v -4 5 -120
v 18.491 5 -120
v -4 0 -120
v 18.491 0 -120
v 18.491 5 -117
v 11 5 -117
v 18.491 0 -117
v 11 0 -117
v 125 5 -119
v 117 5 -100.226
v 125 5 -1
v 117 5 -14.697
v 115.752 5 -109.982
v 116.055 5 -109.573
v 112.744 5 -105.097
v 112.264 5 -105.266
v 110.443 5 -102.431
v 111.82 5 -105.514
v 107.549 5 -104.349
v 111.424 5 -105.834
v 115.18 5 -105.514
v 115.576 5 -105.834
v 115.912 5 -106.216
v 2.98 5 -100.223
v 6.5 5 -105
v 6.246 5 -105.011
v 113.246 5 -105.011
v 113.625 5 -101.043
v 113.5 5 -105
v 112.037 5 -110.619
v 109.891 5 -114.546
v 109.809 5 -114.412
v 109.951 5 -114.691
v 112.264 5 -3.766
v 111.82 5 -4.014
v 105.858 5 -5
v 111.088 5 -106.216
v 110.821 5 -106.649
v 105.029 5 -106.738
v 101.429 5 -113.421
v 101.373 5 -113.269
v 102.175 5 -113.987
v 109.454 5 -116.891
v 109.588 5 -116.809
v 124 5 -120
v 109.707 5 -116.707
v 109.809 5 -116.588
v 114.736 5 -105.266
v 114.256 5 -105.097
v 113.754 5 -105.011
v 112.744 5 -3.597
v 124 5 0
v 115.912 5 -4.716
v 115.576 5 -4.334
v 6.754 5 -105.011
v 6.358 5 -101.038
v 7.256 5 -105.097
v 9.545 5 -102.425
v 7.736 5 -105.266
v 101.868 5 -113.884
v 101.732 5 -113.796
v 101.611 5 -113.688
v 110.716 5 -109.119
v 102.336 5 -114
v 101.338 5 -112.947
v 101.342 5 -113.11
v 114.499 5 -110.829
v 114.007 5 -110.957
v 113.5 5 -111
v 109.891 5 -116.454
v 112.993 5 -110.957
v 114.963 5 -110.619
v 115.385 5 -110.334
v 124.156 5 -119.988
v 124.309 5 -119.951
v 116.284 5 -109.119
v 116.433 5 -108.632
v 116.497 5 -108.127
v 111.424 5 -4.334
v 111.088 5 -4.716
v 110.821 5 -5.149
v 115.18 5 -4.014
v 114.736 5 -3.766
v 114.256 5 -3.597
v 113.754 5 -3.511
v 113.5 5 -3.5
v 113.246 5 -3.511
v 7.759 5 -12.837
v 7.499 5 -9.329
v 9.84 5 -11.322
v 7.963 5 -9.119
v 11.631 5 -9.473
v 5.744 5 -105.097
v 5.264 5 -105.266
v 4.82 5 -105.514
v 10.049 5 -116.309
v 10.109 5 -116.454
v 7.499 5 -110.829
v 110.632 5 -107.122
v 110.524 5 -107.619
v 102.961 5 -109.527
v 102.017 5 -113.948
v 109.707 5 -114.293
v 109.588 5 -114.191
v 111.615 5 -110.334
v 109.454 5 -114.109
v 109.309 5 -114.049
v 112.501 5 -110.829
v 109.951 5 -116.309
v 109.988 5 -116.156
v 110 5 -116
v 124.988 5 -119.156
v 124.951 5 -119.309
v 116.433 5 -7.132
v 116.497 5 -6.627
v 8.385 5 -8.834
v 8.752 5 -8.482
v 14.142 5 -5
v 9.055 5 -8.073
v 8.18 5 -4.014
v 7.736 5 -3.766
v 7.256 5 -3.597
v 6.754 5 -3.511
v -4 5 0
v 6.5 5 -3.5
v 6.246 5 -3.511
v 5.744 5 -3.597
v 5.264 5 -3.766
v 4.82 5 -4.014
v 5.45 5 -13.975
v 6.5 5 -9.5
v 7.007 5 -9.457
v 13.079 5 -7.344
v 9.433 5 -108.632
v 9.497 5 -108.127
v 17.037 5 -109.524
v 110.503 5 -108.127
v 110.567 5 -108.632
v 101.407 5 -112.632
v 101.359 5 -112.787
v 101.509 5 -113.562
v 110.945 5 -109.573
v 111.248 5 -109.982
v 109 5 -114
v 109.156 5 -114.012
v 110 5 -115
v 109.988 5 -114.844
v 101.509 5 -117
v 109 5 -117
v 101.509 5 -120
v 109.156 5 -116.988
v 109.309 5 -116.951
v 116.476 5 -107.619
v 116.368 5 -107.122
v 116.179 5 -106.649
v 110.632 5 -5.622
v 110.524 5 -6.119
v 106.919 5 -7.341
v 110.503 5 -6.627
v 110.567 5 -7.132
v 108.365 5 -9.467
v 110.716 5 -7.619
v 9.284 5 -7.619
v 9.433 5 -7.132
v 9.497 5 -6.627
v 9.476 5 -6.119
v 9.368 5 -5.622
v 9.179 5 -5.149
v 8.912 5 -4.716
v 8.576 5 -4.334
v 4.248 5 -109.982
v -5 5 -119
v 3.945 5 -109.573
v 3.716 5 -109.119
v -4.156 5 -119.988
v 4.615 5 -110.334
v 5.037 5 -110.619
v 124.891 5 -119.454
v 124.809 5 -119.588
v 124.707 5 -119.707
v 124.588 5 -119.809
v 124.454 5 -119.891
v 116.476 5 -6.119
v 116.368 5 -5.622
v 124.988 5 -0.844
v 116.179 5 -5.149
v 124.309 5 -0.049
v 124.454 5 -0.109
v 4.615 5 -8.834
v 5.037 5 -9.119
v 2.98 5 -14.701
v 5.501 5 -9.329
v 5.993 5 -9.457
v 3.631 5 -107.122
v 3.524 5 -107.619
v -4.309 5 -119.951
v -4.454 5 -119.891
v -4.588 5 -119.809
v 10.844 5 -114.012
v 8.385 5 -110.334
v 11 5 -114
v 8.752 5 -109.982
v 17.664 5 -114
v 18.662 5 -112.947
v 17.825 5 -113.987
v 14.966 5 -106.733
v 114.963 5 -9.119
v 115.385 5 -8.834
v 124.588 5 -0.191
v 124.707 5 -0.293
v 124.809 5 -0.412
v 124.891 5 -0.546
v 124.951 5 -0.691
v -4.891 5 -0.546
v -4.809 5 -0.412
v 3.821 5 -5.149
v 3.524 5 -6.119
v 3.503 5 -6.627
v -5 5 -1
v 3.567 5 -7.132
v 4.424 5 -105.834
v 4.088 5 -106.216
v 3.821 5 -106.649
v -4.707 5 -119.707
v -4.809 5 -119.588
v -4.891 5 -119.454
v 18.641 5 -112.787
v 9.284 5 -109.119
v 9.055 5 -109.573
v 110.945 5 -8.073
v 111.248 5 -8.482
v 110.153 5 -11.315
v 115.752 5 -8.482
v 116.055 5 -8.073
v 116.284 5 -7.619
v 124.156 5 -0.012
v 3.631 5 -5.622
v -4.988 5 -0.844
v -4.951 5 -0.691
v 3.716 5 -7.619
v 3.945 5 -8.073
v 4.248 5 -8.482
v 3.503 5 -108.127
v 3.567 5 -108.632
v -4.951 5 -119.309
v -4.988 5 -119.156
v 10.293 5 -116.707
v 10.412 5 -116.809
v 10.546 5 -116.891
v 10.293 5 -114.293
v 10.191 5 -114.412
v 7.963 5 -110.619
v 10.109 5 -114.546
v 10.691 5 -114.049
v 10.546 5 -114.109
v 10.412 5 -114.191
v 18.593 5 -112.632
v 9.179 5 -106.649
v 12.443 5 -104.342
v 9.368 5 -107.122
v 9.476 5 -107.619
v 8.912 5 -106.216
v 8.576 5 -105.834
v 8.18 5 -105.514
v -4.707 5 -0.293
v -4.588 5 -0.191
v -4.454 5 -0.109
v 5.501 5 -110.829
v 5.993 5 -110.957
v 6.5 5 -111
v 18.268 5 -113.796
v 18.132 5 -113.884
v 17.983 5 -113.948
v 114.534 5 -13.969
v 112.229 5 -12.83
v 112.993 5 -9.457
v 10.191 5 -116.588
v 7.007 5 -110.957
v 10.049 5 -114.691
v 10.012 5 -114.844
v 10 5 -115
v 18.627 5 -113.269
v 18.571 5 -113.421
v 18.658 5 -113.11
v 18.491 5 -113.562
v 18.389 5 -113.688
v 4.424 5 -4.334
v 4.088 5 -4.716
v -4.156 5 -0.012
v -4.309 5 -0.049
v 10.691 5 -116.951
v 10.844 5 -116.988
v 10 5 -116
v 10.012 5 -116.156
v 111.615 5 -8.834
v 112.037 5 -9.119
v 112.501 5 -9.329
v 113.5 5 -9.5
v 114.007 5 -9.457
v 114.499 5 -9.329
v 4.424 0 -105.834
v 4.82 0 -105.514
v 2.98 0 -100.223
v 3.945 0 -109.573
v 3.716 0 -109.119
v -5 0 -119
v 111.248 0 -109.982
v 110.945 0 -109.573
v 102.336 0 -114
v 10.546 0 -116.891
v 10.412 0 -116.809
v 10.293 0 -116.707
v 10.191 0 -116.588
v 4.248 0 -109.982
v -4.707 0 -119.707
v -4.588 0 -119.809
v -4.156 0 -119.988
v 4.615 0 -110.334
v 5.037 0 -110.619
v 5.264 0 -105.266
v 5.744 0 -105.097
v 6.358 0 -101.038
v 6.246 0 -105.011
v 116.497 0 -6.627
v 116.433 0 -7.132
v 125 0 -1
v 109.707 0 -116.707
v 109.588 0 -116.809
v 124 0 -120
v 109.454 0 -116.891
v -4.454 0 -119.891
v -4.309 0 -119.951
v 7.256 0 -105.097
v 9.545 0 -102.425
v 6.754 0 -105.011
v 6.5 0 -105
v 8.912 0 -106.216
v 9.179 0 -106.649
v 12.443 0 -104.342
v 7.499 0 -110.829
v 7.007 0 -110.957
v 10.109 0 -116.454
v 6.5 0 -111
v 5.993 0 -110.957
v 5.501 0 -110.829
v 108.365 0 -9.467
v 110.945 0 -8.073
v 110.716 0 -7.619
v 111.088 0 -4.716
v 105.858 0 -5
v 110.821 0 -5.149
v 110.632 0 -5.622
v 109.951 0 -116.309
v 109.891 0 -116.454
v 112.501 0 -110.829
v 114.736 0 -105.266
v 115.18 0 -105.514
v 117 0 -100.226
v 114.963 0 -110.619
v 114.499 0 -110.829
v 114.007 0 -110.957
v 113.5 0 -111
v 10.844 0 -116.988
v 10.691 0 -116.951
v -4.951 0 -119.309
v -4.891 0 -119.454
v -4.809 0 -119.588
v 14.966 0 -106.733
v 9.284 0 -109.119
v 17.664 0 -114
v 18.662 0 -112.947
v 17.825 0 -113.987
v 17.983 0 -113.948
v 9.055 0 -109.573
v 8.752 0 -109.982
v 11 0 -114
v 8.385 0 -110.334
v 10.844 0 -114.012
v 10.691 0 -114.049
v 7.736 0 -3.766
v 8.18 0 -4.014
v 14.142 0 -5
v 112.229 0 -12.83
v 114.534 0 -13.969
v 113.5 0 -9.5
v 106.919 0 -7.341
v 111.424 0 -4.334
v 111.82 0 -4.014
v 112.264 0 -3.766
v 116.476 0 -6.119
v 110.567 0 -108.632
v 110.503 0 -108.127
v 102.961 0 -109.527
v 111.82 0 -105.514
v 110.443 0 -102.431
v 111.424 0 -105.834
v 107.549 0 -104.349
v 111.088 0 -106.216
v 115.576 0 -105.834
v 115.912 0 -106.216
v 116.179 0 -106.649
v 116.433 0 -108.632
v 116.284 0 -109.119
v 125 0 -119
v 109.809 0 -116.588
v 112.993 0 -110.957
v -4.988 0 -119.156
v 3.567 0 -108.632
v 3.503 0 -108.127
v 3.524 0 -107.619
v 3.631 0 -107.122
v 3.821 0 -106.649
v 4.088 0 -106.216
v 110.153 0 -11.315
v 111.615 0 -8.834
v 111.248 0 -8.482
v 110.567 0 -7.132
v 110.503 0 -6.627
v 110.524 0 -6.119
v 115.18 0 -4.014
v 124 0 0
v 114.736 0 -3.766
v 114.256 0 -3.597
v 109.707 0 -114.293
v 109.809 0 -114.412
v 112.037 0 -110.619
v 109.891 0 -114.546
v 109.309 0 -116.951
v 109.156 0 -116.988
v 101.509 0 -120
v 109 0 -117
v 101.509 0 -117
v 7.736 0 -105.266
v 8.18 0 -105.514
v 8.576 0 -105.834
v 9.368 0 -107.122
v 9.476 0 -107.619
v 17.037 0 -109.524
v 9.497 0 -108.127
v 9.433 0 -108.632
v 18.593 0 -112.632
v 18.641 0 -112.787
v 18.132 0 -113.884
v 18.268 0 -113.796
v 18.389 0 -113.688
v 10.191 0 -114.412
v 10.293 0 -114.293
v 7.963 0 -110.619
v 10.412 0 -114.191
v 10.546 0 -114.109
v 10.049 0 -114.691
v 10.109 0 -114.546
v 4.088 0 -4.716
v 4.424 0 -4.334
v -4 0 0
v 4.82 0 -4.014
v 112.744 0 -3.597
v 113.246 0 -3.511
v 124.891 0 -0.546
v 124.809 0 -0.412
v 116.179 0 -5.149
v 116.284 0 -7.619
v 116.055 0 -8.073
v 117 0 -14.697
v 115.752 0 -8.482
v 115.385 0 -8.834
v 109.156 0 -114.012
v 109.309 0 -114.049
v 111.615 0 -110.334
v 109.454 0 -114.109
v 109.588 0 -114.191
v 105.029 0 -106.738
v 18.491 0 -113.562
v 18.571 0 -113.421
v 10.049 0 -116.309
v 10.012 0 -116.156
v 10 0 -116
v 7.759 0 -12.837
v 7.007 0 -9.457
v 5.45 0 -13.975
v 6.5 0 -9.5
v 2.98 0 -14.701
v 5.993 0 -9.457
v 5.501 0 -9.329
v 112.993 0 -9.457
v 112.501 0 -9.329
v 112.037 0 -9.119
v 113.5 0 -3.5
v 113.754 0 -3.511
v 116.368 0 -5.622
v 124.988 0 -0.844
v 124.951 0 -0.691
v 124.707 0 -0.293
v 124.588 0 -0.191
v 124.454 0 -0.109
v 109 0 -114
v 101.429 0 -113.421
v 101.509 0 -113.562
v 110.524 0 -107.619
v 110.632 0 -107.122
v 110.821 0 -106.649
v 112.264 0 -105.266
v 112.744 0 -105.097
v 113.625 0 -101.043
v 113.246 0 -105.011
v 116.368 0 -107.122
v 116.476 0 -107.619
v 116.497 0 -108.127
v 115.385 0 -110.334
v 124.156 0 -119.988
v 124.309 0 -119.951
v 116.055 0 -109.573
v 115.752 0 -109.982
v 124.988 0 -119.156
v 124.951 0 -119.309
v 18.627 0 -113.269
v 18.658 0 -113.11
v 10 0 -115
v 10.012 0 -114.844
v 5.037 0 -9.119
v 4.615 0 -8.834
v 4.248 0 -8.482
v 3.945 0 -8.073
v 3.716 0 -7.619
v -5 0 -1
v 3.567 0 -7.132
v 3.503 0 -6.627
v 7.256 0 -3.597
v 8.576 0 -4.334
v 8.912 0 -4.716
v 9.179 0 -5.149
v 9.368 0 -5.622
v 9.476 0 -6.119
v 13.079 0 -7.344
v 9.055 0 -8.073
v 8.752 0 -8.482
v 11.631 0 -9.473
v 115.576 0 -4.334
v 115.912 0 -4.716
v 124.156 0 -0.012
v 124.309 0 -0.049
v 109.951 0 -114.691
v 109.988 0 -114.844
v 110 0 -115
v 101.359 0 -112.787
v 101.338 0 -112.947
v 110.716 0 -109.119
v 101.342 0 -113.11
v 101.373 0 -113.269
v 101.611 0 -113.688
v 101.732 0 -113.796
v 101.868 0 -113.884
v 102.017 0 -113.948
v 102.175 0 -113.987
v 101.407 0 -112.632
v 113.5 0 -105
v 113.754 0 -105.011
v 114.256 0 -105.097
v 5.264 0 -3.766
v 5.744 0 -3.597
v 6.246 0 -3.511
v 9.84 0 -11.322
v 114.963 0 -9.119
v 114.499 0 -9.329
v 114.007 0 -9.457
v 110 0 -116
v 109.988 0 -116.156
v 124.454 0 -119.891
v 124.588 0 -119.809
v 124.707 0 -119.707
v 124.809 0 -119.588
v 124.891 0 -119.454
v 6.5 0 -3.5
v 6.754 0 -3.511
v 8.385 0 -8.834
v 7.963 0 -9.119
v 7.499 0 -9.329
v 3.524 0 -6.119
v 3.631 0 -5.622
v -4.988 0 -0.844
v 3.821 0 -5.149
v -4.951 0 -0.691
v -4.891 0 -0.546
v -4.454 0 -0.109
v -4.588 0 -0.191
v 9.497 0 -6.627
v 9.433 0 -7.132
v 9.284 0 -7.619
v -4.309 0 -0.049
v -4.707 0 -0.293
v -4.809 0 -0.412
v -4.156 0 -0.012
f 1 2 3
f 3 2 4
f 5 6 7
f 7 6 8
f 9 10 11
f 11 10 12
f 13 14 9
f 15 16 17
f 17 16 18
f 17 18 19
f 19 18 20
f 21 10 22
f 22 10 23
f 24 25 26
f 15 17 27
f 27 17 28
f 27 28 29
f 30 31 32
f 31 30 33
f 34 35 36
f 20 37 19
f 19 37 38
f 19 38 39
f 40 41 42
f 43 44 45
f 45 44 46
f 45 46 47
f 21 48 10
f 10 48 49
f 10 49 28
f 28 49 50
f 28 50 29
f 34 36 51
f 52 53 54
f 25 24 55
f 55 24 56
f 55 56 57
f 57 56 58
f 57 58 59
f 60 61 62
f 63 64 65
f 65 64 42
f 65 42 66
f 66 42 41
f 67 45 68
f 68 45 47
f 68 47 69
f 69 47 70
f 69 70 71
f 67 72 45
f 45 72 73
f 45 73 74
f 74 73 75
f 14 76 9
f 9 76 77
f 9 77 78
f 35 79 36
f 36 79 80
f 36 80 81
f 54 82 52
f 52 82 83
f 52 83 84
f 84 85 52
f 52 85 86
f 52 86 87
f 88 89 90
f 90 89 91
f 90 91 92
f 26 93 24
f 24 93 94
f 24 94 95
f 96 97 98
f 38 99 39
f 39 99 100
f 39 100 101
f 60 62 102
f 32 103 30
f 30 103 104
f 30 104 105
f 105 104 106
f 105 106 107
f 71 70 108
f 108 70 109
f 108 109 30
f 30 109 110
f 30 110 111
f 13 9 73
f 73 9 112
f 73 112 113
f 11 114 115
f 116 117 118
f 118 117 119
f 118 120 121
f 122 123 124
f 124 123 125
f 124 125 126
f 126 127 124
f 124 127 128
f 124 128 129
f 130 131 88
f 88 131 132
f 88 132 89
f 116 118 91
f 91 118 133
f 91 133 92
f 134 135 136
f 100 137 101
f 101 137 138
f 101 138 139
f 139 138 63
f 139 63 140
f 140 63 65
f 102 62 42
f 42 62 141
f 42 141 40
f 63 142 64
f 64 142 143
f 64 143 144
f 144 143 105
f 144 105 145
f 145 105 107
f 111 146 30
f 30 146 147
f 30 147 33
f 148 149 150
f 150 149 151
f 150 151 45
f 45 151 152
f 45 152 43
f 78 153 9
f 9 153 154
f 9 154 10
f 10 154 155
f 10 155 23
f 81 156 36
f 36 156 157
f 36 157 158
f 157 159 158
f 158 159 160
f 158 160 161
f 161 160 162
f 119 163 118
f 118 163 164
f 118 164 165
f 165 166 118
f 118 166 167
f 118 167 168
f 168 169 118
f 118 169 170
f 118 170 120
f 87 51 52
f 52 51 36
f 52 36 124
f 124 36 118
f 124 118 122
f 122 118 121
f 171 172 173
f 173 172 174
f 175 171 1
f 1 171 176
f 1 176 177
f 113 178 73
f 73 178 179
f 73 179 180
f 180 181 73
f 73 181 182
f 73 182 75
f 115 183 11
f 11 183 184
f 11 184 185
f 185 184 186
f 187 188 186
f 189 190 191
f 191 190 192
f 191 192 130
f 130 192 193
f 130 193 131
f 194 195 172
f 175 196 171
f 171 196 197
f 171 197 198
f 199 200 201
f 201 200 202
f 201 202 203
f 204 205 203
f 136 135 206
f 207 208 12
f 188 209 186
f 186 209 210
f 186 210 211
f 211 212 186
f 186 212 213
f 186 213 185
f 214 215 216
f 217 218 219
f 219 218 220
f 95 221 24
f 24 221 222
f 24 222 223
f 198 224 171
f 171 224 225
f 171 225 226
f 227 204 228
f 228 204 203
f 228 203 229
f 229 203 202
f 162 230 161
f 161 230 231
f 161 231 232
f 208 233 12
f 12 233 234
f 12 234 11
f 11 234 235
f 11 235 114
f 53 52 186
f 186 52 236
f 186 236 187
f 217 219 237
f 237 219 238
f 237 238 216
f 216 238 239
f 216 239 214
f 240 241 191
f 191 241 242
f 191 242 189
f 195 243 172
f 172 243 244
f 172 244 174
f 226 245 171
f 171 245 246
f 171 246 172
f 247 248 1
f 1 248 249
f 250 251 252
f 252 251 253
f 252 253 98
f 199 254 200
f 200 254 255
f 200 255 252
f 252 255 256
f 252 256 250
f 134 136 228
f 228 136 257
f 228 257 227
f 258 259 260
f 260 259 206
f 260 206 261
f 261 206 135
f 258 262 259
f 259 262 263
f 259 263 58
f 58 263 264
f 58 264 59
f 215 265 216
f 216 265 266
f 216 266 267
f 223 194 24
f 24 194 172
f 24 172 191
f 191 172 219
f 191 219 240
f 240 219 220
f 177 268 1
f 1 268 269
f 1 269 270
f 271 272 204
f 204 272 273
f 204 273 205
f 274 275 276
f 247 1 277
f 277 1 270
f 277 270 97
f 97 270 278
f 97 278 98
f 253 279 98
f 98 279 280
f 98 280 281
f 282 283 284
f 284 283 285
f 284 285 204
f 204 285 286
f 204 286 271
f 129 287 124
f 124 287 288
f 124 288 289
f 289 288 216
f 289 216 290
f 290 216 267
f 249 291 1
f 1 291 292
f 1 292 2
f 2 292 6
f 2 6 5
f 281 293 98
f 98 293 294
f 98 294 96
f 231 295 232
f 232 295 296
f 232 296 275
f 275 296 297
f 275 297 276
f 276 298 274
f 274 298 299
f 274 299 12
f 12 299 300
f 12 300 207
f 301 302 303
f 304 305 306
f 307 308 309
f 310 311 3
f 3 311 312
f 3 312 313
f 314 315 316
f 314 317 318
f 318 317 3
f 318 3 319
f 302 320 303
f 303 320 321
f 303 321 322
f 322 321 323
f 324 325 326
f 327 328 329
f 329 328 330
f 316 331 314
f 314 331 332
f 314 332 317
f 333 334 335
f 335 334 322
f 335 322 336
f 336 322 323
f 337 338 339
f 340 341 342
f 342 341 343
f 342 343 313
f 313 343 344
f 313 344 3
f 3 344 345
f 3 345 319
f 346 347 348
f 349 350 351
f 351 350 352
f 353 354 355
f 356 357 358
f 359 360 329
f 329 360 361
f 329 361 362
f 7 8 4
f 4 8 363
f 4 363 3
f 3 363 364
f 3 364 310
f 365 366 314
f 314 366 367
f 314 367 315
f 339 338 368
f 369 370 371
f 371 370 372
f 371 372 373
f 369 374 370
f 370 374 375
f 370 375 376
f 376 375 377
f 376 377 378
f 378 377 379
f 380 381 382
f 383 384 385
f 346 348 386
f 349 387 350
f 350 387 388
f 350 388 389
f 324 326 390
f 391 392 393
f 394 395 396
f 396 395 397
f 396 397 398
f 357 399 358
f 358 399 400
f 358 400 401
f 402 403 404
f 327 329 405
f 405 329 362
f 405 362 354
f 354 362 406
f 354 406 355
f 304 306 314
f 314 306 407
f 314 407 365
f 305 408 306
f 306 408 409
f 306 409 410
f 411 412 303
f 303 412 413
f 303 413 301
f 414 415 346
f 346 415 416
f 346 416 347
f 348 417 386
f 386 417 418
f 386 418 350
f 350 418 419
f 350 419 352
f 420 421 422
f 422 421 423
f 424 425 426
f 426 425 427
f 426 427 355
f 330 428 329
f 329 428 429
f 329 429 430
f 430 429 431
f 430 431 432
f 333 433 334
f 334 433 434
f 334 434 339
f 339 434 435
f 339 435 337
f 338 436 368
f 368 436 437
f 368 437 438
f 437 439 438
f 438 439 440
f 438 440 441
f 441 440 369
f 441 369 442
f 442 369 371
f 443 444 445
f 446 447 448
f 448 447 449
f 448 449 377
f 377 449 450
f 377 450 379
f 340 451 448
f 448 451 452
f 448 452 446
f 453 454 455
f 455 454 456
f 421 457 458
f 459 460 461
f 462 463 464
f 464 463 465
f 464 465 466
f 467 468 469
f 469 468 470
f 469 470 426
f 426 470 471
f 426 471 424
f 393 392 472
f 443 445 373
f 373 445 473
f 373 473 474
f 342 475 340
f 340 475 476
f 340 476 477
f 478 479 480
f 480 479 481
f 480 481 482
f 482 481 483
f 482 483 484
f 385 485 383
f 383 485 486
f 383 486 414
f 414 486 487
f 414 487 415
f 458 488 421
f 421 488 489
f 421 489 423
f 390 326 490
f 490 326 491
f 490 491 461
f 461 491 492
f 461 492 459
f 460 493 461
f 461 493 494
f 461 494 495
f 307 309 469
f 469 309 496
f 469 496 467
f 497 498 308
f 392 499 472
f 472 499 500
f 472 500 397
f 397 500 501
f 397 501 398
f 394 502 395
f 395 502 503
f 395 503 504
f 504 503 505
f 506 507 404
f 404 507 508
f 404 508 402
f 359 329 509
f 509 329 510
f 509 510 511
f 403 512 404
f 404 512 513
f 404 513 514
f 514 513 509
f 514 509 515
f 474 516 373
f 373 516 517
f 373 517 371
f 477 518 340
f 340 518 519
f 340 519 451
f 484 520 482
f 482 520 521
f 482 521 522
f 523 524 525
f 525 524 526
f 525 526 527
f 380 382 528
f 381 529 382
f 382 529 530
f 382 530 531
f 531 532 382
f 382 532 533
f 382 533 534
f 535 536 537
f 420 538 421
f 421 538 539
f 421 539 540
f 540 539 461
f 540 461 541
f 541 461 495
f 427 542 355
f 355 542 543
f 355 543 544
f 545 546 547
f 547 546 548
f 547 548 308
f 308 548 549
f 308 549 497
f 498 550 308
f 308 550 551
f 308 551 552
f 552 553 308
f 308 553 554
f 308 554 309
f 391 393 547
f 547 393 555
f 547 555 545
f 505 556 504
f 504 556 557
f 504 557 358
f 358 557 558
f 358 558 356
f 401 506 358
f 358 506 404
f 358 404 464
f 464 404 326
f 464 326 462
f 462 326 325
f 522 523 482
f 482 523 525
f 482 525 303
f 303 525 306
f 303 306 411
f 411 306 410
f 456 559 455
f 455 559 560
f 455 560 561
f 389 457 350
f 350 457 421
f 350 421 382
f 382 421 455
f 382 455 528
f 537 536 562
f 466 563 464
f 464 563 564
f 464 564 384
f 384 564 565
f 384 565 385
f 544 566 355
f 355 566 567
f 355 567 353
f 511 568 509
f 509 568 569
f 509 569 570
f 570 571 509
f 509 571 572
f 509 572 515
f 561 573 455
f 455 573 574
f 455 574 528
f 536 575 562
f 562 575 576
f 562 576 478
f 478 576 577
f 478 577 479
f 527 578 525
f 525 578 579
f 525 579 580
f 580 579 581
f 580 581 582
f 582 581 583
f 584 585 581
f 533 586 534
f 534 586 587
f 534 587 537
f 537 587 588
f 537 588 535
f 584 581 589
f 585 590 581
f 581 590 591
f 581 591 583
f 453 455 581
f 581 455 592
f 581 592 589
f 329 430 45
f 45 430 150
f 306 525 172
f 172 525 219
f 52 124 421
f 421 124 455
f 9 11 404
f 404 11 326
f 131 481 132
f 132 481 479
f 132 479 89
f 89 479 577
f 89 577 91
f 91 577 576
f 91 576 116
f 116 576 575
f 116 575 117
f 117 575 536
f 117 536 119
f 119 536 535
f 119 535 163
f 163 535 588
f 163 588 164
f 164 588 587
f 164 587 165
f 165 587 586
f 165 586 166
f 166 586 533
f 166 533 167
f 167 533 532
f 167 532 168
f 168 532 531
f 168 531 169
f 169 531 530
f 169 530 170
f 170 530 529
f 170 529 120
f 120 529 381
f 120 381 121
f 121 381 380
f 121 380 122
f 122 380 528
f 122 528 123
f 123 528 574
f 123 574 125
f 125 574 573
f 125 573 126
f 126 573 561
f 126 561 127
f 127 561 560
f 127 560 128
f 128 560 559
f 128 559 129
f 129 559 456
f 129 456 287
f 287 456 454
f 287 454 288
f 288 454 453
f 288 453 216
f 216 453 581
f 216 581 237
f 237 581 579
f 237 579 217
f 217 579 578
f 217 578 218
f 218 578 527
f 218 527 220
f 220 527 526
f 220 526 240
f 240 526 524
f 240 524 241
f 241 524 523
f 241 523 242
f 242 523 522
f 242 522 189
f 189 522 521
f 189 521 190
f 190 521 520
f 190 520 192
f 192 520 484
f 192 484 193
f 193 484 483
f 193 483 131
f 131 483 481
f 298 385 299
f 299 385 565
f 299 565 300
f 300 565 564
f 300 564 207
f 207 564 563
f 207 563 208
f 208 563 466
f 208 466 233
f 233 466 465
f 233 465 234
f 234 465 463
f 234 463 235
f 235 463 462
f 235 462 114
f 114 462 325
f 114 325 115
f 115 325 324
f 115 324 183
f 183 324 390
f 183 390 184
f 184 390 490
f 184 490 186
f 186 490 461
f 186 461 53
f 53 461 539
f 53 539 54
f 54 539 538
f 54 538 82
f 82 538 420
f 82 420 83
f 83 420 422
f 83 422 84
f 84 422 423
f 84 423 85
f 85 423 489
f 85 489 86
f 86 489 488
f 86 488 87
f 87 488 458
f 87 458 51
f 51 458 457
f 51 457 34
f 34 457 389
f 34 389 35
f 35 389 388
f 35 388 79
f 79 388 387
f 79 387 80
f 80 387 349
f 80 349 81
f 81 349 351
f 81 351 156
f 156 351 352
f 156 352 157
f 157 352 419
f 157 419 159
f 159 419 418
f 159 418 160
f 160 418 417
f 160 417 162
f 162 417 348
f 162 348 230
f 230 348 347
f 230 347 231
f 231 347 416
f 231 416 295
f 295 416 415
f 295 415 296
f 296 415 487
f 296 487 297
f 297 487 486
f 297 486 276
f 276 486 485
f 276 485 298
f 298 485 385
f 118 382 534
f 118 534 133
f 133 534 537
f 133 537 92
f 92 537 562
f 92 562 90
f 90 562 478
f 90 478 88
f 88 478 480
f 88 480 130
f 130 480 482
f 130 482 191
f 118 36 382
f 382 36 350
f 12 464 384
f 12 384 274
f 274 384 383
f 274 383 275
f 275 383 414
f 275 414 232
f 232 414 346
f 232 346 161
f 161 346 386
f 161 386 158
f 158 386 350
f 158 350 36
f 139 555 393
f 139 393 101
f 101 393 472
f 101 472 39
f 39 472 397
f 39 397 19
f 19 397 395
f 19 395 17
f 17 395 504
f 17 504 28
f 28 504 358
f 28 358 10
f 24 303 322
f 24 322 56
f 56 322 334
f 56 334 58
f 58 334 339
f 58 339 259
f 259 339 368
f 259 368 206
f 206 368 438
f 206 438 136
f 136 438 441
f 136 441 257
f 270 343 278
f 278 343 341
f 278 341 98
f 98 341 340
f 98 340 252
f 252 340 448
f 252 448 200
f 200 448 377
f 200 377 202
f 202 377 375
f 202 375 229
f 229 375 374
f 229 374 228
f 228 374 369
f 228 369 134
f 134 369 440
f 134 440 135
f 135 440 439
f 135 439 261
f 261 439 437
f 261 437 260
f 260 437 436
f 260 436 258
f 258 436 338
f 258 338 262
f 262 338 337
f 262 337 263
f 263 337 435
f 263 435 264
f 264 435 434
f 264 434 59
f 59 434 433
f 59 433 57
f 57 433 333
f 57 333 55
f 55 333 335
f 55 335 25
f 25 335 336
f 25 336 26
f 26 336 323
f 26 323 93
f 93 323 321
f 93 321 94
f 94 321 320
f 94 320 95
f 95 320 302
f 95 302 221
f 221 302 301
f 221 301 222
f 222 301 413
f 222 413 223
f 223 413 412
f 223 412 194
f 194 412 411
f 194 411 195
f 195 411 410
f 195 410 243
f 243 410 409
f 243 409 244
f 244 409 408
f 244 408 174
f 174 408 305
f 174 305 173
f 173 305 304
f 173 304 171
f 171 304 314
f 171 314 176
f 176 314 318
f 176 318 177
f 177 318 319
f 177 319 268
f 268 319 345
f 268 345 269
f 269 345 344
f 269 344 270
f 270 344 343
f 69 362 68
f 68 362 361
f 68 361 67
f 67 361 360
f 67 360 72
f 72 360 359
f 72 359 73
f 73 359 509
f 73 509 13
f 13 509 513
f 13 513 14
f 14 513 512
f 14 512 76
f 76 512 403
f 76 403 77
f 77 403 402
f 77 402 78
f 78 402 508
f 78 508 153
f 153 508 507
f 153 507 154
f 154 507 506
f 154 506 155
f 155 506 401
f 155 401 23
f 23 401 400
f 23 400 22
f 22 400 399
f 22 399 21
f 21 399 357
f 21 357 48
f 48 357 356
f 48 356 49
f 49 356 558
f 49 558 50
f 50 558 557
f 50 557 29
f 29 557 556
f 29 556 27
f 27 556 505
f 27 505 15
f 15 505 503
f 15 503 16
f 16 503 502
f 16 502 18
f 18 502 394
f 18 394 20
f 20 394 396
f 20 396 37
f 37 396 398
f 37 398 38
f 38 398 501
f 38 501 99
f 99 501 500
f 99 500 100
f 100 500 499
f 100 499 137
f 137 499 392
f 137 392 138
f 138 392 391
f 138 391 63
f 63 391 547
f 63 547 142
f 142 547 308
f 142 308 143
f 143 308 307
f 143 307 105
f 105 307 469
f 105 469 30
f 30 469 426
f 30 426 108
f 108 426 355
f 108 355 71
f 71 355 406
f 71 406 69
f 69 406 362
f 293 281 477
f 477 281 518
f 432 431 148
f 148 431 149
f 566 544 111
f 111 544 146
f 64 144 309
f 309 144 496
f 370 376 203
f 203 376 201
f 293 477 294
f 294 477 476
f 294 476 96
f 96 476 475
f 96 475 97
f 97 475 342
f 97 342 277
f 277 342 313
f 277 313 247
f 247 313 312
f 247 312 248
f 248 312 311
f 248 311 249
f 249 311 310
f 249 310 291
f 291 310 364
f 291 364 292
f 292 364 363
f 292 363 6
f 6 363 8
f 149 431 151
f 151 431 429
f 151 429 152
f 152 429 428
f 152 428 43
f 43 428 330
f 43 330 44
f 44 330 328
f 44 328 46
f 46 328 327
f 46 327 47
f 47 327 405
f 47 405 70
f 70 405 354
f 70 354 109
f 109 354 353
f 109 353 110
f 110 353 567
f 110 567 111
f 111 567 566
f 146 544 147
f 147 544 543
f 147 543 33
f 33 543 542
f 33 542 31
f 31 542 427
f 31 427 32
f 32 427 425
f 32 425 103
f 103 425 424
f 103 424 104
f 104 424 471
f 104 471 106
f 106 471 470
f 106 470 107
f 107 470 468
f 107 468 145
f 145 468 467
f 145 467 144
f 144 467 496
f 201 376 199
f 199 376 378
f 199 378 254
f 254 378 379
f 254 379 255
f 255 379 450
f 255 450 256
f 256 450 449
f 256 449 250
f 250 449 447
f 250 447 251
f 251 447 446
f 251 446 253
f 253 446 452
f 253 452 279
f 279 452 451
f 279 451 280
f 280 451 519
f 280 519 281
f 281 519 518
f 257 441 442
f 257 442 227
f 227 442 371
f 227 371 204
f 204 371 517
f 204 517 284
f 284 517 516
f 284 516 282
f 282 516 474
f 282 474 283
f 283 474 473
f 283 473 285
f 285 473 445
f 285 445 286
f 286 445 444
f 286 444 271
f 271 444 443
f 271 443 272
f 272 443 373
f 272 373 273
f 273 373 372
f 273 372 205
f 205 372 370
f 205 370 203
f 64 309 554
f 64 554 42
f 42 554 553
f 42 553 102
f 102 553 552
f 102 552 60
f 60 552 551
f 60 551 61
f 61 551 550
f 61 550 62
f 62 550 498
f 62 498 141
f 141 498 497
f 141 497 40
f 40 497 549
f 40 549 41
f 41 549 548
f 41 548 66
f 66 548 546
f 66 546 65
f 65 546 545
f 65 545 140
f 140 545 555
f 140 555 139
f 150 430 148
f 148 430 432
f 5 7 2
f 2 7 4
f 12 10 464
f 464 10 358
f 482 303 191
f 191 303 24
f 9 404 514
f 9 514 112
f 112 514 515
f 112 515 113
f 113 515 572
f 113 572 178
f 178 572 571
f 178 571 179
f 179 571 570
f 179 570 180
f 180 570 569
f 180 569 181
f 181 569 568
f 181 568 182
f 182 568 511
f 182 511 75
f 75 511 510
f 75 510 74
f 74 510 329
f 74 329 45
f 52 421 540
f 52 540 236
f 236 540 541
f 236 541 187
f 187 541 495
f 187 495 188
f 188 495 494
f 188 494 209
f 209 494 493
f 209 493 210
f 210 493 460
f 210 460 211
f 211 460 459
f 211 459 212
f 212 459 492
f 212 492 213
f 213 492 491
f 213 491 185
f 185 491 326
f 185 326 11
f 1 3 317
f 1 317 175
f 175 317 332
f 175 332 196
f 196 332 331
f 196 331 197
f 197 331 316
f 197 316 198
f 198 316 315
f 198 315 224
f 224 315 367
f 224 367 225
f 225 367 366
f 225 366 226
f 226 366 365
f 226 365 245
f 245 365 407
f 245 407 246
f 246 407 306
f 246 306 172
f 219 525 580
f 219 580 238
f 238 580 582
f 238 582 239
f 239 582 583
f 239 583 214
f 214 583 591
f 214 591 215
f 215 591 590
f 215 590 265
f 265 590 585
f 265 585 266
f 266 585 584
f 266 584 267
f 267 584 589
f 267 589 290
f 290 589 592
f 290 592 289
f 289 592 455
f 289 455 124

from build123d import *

# Parameters (mm, degrees)
SKETCH1_W           = 130
SKETCH1_H           = 120
SKETCH1_R           = 3
BOSS_EXTRUDE1_DEPTH = 5
SKETCH2_W           = 100
SKETCH2_H           = 3
CUT_EXTRUDE1_DEPTH  = 10
FILLET1_R           = 1
FILLET2_R           = 1
FILLET3_R           = 1
SKETCH3_W           = 83.01861615
SKETCH3_H           = 6.438048513
CUT_EXTRUDE2_DEPTH  = 10
SKETCH4_W           = 3
SKETCH4_H           = 92.008130055
BOSS_EXTRUDE2_DEPTH = 5
FILLET4_R           = 1


with BuildPart() as part:
    # Sketch1 → Boss-Extrude1 (new body)
    with BuildSketch(Plane(origin=(0, 0, 0), x_dir=(1, 0, 0), z_dir=(0, 1, 0))):
        with Locations((60, 60)):
            Rectangle(SKETCH1_W, SKETCH1_H)
        with Locations(Location((6.5, 6.5, 0), (0, 0, 270))):
            Circle(SKETCH1_R, mode=Mode.SUBTRACT)
        with Locations(Location((113.5, 6.5, 0), (0, 0, 270))):
            Circle(SKETCH1_R, mode=Mode.SUBTRACT)
        with Locations(Location((6.5, 108, 0), (0, 0, 270))):
            Circle(SKETCH1_R, mode=Mode.SUBTRACT)
        with Locations(Location((113.5, 108, 0), (0, 0, 270))):
            Circle(SKETCH1_R, mode=Mode.SUBTRACT)
        with BuildLine():
            Line((0, 100), (0, 15))
            ThreePointArc((0, 15), (8.660254038, 12.247448714), (14.142135624, 5))
            Line((14.142135624, 5), (15, 5))
            Line((15, 5), (105, 5))
            Line((105, 5), (105.857864376, 5))
            ThreePointArc((105.857864376, 5), (111.339745962, 12.247448714), (120, 15))
            Line((120, 15), (120, 100))
            ThreePointArc((120, 100), (107.752551286, 104.188611699), (100.635083269, 115))
            Line((100.635083269, 115), (100, 115))
            Line((100, 115), (20, 115))
            Line((20, 115), (19.364916731, 115))
            ThreePointArc((19.364916731, 115), (12.247448714, 104.188611699), (0, 100))
        make_face(mode=Mode.SUBTRACT)
    extrude(amount=BOSS_EXTRUDE1_DEPTH)

    # Sketch2 → Cut-Extrude1 (cut)
    with BuildSketch(Plane(origin=(0, 5, 0), x_dir=(1, 0, 0), z_dir=(0, 1, 0))):
        with Locations((60, 115.5)):
            Rectangle(SKETCH2_W, SKETCH2_H)
    extrude(amount=-CUT_EXTRUDE1_DEPTH, mode=Mode.SUBTRACT)

    # Fillet1
    fillet1_edges = [part.edges().sort_by_distance(p)[0] for p in [
        (10, 2.5, -114),
        (10, 2.5, -117),
        (110, 2.5, -117),
        (110, 2.5, -114),
    ]]
    fillet(fillet1_edges, radius=FILLET1_R)

    # Fillet2
    fillet2_edges = [part.edges().sort_by_distance(p)[0] for p in [
        (19.078784028, 2.5, -114),
    ]]
    fillet(fillet2_edges, radius=FILLET2_R)

    # Fillet3
    fillet3_edges = [part.edges().sort_by_distance(p)[0] for p in [
        (100.921215972, 2.5, -114),
    ]]
    fillet(fillet3_edges, radius=FILLET3_R)

    # Sketch3 → Cut-Extrude2 (cut)
    with BuildSketch(Plane(origin=(0, 5, 0), x_dir=(1, 0, 0), z_dir=(0, 1, 0))):
        with Locations((60, 116.780975744)):
            Rectangle(SKETCH3_W, SKETCH3_H)
    extrude(amount=-CUT_EXTRUDE2_DEPTH, mode=Mode.SUBTRACT)

    # Sketch4 → Boss-Extrude2 (add)
    with BuildSketch(Plane(origin=(0, 5, 0), x_dir=(1, 0, 0), z_dir=(0, 1, 0))):
        with Locations((118.5, 57.563435723)):
            Rectangle(SKETCH4_W, SKETCH4_H)
        with Locations((1.479834165, 57.563435723)):
            Rectangle(SKETCH4_W, SKETCH4_H)
    extrude(amount=-BOSS_EXTRUDE2_DEPTH)

    # Fillet4
    fillet4_edges = [part.edges().sort_by_distance(p)[0] for p in [
        (125, 2.5, -120),
        (125, 2.5, 0),
        (-5, 2.5, 0),
        (-5, 2.5, -120),
    ]]
    fillet(fillet4_edges, radius=FILLET4_R)


solid = part.part
